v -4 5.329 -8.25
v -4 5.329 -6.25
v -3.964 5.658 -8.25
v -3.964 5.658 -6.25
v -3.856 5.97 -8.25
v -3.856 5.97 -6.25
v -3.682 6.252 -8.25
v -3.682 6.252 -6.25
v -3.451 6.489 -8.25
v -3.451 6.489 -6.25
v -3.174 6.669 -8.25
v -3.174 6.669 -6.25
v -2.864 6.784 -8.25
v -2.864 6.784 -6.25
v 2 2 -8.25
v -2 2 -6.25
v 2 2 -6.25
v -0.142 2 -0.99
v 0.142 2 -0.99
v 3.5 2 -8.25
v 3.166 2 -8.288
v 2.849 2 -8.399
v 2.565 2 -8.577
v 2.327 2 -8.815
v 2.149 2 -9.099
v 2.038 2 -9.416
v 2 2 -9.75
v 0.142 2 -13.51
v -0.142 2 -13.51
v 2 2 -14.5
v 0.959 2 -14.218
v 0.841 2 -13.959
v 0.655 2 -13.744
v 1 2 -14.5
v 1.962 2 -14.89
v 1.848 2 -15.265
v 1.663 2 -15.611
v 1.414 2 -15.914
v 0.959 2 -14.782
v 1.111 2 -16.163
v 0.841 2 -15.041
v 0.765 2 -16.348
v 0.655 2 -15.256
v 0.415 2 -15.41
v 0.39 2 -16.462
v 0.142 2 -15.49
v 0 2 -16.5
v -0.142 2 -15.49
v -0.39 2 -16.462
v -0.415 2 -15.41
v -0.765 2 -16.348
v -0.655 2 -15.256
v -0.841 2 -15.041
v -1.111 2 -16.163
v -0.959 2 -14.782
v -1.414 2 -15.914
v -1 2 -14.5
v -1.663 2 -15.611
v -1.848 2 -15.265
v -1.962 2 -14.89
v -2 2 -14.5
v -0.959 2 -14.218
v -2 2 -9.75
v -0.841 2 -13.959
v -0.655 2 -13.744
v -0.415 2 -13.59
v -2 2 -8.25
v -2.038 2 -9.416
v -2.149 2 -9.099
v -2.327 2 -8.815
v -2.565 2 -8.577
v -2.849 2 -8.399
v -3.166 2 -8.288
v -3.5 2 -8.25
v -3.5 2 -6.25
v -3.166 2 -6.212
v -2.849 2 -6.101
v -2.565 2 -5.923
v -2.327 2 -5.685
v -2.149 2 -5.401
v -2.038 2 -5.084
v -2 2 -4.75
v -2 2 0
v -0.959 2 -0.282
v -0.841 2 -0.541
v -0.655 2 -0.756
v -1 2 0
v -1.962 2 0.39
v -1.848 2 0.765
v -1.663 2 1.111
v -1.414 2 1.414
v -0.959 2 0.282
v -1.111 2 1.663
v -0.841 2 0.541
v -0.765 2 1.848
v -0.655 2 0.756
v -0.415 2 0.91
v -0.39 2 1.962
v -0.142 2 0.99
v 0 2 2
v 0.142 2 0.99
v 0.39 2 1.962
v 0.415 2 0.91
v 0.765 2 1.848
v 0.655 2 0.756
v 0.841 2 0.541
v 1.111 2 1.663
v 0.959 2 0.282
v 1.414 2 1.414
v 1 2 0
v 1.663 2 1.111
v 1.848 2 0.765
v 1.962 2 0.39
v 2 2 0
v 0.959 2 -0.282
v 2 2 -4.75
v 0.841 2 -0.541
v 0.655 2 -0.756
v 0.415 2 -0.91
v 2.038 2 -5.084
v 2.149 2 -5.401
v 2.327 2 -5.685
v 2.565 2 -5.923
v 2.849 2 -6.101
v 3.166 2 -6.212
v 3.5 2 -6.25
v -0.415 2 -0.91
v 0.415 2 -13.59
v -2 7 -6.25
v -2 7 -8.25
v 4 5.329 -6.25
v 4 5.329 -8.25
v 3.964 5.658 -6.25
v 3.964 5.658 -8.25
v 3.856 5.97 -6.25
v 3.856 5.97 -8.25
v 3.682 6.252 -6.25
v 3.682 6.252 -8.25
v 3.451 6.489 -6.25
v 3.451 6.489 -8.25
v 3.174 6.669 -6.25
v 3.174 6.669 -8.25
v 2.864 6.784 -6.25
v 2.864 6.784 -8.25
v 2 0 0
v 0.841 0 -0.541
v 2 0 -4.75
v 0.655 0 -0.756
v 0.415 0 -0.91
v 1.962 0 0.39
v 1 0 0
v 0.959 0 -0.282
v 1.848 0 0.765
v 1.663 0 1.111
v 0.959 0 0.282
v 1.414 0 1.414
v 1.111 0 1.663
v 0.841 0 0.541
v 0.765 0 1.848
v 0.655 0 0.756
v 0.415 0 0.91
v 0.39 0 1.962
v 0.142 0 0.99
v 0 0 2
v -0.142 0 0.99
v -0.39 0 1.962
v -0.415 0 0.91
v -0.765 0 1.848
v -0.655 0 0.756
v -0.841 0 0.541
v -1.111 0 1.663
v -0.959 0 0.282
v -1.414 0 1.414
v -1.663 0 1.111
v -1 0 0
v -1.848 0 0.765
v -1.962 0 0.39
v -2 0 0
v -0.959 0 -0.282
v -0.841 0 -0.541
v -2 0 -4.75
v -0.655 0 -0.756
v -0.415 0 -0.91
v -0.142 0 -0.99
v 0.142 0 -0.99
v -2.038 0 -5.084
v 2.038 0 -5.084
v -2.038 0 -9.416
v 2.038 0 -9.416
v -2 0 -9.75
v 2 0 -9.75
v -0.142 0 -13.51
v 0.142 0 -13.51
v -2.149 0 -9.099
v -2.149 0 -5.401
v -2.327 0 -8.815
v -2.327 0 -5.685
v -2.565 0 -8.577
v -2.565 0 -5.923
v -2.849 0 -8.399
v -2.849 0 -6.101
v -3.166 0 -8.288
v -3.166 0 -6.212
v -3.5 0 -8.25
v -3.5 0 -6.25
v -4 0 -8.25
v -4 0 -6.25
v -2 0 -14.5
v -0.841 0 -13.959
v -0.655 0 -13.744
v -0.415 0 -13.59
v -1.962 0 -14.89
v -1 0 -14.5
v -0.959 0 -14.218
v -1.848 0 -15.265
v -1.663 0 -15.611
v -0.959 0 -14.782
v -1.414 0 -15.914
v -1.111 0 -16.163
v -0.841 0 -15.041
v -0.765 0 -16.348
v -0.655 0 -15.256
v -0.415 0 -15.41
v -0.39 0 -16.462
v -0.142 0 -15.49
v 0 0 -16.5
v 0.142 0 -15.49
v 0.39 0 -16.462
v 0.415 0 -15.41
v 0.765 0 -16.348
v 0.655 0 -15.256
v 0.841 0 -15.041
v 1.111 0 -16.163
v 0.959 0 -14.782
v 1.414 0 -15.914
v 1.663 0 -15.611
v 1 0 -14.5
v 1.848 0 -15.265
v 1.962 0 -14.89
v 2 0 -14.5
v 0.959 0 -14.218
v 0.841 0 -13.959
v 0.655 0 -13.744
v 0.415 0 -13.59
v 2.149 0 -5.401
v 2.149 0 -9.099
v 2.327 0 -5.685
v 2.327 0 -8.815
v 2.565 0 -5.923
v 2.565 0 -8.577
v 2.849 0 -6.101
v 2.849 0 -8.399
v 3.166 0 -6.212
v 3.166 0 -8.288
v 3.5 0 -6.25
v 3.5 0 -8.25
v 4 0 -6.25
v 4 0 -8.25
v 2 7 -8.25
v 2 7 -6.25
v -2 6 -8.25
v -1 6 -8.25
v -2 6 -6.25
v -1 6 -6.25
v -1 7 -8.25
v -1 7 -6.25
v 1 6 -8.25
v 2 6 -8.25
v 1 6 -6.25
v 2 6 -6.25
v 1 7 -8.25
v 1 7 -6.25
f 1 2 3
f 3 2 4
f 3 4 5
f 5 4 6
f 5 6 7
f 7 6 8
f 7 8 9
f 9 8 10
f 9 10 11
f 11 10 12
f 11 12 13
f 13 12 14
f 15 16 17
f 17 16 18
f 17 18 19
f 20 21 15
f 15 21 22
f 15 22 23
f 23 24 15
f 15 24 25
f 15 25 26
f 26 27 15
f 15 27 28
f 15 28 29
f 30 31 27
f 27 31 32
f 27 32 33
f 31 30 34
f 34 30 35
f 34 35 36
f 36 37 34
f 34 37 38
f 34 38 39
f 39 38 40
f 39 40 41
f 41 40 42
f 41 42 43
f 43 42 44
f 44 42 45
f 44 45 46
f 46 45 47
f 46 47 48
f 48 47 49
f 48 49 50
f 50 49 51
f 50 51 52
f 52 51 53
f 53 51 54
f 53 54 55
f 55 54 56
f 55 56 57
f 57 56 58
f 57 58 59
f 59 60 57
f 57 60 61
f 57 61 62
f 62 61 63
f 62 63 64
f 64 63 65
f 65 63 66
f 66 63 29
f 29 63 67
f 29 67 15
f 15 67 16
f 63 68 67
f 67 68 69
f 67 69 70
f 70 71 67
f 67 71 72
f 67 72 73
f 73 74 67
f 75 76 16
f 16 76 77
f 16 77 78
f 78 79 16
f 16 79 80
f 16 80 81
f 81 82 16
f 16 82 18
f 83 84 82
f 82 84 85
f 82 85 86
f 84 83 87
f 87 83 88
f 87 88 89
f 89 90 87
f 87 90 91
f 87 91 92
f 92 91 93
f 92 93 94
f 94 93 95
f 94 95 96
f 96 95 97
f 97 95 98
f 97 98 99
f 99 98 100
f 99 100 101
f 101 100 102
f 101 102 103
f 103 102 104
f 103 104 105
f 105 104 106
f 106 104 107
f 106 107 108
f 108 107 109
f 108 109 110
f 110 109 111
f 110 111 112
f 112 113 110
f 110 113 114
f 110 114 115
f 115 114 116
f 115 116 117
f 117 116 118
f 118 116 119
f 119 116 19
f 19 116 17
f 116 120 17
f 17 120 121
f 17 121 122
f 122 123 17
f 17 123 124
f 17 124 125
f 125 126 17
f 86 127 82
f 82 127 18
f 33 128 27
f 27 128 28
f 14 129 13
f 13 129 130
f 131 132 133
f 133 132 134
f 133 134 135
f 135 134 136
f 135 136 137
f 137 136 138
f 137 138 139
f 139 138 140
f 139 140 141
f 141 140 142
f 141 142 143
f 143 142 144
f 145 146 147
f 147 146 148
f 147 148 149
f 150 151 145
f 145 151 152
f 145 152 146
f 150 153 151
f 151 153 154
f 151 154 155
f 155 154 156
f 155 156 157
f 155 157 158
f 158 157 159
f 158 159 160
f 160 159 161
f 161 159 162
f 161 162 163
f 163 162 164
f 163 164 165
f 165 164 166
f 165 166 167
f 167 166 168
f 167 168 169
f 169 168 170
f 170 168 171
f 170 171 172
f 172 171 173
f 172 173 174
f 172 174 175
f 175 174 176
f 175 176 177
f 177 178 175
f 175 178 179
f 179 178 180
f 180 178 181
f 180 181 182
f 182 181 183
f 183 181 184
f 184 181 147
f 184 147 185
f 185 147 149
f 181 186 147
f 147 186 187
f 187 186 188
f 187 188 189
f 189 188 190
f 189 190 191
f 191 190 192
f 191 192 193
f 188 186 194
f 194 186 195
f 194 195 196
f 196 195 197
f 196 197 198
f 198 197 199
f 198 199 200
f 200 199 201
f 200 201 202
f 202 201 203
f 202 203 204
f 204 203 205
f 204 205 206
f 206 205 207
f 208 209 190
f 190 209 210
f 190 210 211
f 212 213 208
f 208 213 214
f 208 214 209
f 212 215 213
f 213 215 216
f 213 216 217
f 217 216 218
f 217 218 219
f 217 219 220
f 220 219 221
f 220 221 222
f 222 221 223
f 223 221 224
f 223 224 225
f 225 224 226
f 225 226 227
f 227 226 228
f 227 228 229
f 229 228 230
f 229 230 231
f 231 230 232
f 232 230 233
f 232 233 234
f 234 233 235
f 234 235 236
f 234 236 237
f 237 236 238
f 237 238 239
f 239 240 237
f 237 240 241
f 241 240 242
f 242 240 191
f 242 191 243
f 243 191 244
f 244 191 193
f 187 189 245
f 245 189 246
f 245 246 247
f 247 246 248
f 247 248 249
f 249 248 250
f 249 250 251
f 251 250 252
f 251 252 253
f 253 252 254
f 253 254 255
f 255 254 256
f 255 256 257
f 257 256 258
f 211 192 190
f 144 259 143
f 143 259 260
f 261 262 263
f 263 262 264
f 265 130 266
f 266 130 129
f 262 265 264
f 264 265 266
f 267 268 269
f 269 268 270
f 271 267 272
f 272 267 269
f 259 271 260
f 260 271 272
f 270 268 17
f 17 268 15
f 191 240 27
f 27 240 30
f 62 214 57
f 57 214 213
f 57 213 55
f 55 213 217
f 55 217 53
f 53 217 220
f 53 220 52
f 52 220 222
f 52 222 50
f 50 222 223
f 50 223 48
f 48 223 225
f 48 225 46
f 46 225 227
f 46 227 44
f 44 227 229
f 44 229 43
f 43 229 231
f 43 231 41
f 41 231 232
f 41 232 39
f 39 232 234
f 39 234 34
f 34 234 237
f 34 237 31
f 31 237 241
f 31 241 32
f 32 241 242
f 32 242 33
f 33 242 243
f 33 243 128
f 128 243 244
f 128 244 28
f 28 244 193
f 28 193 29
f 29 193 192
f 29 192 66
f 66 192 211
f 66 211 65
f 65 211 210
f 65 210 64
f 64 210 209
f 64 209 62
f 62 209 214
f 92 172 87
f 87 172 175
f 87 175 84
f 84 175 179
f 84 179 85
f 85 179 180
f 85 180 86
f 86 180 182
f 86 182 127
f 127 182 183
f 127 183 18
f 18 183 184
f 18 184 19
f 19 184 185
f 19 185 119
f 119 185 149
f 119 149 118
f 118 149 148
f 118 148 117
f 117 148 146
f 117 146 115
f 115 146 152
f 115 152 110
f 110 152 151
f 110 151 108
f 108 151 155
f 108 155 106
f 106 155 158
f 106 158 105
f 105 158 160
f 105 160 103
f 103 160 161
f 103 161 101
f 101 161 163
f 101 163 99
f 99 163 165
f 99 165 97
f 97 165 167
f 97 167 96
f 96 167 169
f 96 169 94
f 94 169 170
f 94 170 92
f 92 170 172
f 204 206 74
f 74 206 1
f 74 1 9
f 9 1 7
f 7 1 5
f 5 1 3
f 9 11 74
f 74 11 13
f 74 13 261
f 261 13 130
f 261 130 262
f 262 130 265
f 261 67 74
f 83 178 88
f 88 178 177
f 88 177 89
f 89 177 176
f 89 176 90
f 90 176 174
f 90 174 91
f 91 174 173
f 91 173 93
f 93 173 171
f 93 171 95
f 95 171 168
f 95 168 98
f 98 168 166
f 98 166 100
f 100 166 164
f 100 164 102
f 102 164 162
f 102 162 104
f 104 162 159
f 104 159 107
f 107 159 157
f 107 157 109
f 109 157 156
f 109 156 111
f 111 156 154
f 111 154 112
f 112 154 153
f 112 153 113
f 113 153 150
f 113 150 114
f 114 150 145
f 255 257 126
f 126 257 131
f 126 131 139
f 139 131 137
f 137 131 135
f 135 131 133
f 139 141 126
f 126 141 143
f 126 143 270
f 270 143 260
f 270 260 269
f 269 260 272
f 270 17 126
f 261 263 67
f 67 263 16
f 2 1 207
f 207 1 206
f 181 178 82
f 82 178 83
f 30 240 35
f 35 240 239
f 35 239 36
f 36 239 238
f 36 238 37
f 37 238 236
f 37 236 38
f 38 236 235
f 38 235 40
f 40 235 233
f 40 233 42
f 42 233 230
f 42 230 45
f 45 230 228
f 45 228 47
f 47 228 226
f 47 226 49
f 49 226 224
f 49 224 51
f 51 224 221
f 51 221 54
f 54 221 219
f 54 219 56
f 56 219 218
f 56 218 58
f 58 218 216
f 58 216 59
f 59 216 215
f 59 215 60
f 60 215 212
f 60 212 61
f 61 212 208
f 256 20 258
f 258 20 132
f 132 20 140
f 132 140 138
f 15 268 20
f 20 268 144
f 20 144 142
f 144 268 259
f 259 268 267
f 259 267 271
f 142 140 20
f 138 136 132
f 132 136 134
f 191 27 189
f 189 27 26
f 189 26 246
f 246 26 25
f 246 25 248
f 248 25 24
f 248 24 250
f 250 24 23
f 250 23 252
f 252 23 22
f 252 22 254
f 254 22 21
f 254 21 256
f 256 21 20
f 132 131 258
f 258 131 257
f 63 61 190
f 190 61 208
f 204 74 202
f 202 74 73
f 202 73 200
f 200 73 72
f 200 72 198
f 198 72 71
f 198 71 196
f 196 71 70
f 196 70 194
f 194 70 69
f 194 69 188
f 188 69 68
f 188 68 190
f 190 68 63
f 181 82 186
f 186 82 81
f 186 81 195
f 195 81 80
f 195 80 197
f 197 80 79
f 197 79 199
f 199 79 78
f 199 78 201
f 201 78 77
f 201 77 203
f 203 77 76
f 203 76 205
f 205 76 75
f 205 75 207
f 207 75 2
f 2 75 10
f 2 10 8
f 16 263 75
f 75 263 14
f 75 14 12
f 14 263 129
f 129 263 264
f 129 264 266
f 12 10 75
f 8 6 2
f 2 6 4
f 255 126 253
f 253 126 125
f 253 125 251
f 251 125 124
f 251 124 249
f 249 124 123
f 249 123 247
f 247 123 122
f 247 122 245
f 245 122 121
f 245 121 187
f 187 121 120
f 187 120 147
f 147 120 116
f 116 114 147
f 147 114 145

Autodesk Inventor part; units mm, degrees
ref_plane "YZ Plane" through (0, 0, 0) normal (1, 0, 0) x (0, 1, 0)
ref_plane "XZ Plane" through (0, 0, 0) normal (0, 1, 0) x (-1, 0, 0)
ref_plane "XY Plane" through (0, 0, 0) normal (0, 0, 1) x (1, 0, 0)
sketch "Sketch1" plane through (0, 0, 0) normal (0, 1, 0) x (-1, 0, 0)
  circle A0 centre (0, 0) radius 1
  circle A1 centre (0, 0) radius 2
  line L0 (2, 0) -> (-2, 0)
  line L1 (-2, 0) -> (-2, -8.25)
  line L2 (-2, -8.25) -> (2, -8.25)
  line L3 (2, -8.25) -> (2, 0)
  line L4 (2, -8.25) -> (4, -8.25)
  line L5 (4, -8.25) -> (4, -6.25)
  line L6 (4, -6.25) -> (2, -6.25)
  line L7 (2, -6.25) -> (2, -8.25)
  line L8 (-2, -8.25) -> (-4, -8.25)
  line L9 (-4, -8.25) -> (-4, -6.25)
  line L10 (-4, -6.25) -> (-2, -6.25)
  line L11 (-2, -6.25) -> (-2, -8.25)
  line L12 (0, 0) -> (0, -14.5)
  line L13 (0, 0) -> (14.5, 0) construction
  circle A2 centre (0, -14.5) radius 1
  circle A3 centre (0, -14.5) radius 2
  line L14 (2, -8.25) -> (-2, -8.25)
  line L15 (-2, -8.25) -> (-2, -14.5)
  line L16 (-2, -14.5) -> (2, -14.5)
  line L17 (2, -14.5) -> (2, -8.25)
  point P0 (-2, -6.25)
  point P1 (2, -6.25)
  point P2 (2, -14.5)
  dimension "d1" = 4
  dimension "d25" = 4
  dimension "d0" = 2
  dimension "d2" = 8.25
  dimension "d3" = 2
  dimension "d4" = 2
  dimension "d5" = 2
  dimension "d6" = 2
  dimension "d22" = 14.5
  dimension "d23" = 90
  dimension "d24" = 2
extrude "Extrusion1" add sketch "Sketch1" along normal blind 2 contours L0 A1 L12 A0 | A0 L0 A1 | A0 L12 A1 L0 | L3 L2 L12 A1 | A1 L12 L2 L1 | L6 L5 L4 L3 | L1 L8 L9 L10 | L12 A3 L15 L2 | L2 L17 A3 L12 | A3 L16 A2 L12 | L12 A2 L16 A3 | A3 L16 A2
sketch "Sketch2" plane through (0, 2, 0) normal (0, 1, 0) x (1, 0, 0)
  line L0 (-4, 6.25) -> (-2, 6.25) projected
  line L1 (4, 8.25) -> (-4, 8.25) projected
  line L2 (-4, 6.25) -> (-2, 6.25)
  line L3 (-2, 6.25) -> (-2, 8.25)
  line L4 (-2, 8.25) -> (-4, 8.25)
  line L5 (-4, 8.25) -> (-4, 6.25)
  line L6 (4, 6.25) -> (2, 6.25)
  line L7 (2, 6.25) -> (2, 8.25)
  line L8 (2, 8.25) -> (4, 8.25)
  line L9 (4, 8.25) -> (4, 6.25)
  point P0 (0, 0)
  point P1 (-4, 8.25)
  point P2 (-2, 6.25)
  dimension "d9" = 2
  dimension "d10" = 2
extrude "Extrusion2" add sketch "Sketch2" along normal blind 4.5
sketch "Sketch3" plane through (4, 0, -8.25) normal (0, 0, -1) x (-1, 0, 0)
  line L0 (2, 6.5) -> (0, 6.5) projected
  line L1 (2, 6.5) -> (2, 6)
  line L2 (2, 2) -> (2, 6.5) projected
  line L3 (2, 6) -> (6, 6)
  line L4 (2, 6) -> (3, 6)
  line L5 (3, 6) -> (3, 7)
  line L6 (3, 7) -> (2, 7)
  line L7 (2, 7) -> (2, 6)
  line L8 (6, 6) -> (5, 6)
  line L9 (5, 6) -> (5, 7)
  line L10 (5, 7) -> (6, 7)
  line L11 (6, 7) -> (6, 6)
  line L12 (2, 7) -> (0, 6.5)
  line L13 (8, 0) -> (8, 6.5) projected
  line L14 (6, 7) -> (8, 6.5)
  line L15 (8, 6.5) -> (6, 6.5)
  line L16 (0, 6.5) -> (2, 6.5)
  point P0 (4, 0)
  dimension "d13" = 0.5
  dimension "d14" = 4
  dimension "d15" = 1
  dimension "d16" = 1
  dimension "d17" = 1
  dimension "d18" = 1
extrude "Extrusion3" add sketch "Sketch3" against normal blind 2
fillet "Fillet1" radius 1.5 2 edges at (4, 6.5, -7.25) (-4, 6.5, -7.25)
fillet "Fillet2" radius 1.5 4 edges at (-2, 1, -6.25) (2, 1, -6.25) (-2, 1, -8.25) (2, 1, -8.25)
properties part number "leg_wire_holder"
